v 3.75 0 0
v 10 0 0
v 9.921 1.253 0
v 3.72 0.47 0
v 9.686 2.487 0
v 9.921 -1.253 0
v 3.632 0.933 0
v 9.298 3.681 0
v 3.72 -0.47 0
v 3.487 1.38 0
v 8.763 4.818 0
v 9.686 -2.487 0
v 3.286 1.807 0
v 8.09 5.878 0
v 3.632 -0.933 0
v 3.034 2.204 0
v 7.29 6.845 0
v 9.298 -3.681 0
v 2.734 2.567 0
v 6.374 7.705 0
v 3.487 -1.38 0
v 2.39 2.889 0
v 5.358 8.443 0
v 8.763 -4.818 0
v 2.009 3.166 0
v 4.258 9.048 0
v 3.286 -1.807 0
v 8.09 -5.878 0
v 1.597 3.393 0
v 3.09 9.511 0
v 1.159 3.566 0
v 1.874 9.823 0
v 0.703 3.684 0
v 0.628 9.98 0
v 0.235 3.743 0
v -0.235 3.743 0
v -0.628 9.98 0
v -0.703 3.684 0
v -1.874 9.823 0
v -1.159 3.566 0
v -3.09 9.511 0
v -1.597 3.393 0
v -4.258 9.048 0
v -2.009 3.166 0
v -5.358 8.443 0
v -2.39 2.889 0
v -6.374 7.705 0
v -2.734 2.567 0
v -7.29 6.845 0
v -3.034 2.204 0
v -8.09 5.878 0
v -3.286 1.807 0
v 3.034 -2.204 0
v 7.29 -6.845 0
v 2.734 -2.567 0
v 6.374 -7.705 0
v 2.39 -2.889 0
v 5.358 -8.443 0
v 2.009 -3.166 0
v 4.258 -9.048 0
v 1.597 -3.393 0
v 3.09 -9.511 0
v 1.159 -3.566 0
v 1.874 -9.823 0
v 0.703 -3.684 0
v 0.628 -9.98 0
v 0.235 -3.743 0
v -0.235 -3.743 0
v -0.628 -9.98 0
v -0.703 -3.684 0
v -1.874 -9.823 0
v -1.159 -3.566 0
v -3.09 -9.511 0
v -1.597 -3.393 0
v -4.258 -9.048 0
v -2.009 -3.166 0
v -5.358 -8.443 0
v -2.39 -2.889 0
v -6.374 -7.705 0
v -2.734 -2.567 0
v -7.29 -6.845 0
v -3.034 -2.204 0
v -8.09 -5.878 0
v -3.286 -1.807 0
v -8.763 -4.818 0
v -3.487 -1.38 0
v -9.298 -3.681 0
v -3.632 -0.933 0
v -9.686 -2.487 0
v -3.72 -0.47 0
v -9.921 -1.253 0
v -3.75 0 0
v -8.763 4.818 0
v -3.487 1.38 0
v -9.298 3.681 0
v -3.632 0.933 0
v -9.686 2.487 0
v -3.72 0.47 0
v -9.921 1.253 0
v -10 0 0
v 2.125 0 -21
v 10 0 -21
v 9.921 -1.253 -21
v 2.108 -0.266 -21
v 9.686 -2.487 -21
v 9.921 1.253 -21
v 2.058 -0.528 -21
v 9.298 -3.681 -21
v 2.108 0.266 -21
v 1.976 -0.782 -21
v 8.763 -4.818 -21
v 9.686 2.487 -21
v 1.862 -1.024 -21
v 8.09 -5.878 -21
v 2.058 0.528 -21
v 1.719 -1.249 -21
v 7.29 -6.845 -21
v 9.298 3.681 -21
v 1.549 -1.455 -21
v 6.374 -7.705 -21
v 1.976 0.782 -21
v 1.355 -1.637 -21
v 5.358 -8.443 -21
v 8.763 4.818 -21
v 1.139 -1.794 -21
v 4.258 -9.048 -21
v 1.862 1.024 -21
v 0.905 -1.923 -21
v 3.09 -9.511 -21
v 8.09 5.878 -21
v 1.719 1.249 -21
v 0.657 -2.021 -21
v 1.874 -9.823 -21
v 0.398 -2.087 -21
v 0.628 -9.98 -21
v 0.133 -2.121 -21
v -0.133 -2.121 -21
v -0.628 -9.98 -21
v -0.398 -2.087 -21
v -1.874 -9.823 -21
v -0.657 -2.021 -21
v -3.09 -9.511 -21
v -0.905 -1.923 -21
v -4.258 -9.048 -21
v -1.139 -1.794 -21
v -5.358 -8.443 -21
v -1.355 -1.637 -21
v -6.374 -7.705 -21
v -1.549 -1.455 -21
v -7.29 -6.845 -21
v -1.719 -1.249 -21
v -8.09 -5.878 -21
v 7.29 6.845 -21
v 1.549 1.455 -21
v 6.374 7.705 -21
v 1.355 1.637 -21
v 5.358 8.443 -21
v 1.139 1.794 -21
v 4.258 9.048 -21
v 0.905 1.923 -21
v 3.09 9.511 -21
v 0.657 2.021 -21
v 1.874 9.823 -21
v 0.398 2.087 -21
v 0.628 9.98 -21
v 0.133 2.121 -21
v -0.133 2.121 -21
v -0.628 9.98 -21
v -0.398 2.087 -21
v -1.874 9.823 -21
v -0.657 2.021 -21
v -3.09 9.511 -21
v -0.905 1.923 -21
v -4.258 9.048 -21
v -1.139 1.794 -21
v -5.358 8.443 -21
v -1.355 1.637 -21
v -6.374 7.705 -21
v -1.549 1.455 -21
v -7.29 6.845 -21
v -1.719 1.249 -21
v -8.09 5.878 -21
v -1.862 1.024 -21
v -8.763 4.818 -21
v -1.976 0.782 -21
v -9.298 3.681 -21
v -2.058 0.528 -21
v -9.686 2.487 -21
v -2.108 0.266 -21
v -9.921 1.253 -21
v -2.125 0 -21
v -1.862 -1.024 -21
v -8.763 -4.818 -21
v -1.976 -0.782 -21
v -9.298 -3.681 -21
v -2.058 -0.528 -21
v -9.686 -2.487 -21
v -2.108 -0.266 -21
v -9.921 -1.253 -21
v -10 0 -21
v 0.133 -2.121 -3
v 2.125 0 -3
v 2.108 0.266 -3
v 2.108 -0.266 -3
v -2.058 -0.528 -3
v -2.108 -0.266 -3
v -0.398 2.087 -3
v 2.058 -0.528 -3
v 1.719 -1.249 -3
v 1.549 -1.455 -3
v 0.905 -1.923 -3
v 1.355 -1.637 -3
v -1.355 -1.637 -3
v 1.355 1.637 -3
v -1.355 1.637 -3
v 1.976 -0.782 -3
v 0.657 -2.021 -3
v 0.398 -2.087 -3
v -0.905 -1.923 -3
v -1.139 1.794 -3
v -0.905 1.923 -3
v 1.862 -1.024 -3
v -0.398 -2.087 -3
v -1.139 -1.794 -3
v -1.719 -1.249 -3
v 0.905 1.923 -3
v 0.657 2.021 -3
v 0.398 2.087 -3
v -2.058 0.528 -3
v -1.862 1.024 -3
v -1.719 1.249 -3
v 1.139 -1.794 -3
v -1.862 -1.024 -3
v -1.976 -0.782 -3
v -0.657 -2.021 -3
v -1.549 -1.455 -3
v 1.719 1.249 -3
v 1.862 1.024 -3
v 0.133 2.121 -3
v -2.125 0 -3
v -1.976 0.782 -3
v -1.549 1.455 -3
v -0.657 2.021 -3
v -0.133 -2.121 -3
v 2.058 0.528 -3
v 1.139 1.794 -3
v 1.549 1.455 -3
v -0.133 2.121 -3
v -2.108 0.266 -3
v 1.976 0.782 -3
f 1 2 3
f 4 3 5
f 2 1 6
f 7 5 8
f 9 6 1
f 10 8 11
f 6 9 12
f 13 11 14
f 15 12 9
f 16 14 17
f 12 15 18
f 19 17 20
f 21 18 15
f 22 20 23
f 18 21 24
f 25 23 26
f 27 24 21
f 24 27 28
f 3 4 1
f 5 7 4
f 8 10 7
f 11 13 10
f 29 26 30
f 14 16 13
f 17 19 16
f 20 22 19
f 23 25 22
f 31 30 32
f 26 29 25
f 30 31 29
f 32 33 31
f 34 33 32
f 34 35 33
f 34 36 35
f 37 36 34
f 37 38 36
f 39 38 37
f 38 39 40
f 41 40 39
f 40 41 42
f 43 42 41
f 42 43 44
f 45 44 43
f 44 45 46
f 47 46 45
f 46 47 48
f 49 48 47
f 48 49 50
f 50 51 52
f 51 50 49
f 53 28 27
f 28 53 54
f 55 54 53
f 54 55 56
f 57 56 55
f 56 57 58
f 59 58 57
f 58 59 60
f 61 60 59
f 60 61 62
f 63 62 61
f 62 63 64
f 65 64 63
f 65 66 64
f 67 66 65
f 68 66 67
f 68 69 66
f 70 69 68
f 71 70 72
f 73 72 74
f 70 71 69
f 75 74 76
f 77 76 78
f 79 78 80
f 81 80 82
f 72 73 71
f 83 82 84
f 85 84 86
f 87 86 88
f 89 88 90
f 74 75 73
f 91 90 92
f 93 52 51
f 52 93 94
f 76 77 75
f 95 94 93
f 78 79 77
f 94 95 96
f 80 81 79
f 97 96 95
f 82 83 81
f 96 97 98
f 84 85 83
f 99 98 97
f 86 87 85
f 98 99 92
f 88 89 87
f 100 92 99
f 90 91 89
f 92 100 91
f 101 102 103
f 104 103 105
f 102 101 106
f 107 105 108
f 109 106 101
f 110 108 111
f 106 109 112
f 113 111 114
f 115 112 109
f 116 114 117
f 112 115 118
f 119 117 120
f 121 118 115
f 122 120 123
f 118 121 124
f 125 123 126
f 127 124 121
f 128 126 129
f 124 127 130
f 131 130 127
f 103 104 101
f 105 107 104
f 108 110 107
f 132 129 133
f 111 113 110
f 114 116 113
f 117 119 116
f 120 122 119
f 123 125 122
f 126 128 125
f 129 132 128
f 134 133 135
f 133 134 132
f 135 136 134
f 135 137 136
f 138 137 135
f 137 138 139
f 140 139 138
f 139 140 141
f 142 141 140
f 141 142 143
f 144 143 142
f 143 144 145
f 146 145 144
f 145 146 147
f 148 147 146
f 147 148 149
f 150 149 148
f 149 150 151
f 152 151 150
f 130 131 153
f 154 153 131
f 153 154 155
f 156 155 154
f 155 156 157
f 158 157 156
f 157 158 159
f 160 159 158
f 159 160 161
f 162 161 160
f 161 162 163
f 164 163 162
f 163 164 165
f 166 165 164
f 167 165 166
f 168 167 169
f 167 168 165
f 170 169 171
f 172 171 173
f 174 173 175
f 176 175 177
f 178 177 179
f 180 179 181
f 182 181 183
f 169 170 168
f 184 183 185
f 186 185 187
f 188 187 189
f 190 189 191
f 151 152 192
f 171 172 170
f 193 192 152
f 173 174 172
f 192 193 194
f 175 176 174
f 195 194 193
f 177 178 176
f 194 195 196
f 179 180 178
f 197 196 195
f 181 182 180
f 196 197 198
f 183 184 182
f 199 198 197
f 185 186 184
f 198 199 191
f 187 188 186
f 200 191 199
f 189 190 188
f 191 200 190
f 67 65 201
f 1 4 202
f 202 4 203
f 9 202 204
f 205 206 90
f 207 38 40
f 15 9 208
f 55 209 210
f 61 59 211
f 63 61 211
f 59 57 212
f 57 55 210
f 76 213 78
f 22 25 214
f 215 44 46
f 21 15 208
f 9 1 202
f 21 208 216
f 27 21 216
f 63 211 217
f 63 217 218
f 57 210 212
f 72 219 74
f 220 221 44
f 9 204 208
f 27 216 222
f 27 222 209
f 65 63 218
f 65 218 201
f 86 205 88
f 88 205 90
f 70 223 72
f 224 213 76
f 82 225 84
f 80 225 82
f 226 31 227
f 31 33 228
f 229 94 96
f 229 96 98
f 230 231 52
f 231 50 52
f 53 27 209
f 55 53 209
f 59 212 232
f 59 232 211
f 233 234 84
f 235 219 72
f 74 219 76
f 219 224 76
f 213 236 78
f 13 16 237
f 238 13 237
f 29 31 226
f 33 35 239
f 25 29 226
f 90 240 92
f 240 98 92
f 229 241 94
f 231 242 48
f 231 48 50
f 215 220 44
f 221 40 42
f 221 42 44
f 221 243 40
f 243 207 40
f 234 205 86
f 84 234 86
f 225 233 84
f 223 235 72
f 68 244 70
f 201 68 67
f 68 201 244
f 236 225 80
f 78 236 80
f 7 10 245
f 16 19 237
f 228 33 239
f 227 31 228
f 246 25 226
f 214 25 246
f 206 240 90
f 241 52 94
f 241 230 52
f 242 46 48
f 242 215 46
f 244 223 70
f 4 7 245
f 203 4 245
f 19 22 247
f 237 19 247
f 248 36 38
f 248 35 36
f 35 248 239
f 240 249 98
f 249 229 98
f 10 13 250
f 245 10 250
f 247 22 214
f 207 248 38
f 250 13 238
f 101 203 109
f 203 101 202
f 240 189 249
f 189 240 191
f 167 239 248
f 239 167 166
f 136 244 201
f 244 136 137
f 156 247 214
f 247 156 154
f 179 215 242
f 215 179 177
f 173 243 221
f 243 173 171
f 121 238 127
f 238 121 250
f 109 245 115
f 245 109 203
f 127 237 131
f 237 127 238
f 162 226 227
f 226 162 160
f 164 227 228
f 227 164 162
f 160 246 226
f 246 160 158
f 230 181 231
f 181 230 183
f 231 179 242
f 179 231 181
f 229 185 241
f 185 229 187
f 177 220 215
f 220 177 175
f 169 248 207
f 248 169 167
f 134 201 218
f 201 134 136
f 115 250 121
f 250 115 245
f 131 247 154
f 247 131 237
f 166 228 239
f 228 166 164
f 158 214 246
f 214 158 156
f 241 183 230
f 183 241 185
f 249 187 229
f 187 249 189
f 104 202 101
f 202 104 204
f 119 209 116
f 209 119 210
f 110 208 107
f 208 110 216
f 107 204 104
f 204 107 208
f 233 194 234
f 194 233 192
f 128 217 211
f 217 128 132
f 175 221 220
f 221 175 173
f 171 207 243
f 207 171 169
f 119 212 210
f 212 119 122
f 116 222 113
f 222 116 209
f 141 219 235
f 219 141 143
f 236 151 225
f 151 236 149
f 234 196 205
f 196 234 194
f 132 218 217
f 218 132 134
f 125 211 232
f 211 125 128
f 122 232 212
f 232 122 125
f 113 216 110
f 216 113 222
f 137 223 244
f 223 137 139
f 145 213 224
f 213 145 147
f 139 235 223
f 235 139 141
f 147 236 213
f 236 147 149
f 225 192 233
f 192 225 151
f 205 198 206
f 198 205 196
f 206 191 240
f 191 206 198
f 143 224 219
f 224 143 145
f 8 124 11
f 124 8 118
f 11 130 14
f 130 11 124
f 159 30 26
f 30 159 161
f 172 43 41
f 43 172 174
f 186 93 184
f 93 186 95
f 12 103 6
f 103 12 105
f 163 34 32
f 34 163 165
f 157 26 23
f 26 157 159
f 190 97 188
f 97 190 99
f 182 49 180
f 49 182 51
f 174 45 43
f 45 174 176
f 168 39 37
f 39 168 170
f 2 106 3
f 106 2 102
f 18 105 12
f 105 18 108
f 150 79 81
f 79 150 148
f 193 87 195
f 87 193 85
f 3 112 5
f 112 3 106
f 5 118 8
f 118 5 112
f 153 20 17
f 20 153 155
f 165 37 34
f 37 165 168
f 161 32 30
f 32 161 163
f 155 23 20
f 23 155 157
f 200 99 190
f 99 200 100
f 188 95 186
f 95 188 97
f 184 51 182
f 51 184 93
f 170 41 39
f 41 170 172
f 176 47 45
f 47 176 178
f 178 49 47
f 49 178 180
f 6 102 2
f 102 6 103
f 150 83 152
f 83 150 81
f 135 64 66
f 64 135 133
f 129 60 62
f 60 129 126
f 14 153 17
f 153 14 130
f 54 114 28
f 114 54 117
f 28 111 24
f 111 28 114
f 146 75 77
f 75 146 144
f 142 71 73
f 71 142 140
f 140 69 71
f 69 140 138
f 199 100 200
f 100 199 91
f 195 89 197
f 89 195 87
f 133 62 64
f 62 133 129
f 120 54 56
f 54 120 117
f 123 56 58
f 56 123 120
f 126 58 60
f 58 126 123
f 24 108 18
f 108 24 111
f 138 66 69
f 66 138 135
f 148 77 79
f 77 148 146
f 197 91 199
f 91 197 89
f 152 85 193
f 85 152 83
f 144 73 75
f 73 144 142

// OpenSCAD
$fn = 50;


difference() {
	union() {
		translate(v = [0, 0, -21.0000000000]) {
			cylinder(h = 21, r = 10.0000000000);
		}
		cylinder(h = 0, r = 13.0000000000);
	}
	union() {
		translate(v = [0, 0, 0]) {
			rotate(a = [0, 0, 0]) {
				difference() {
					union() {
						#translate(v = [0, 0, -21.0000000000]) {
							cylinder(h = 21, r = 2.0000000000);
						}
						#translate(v = [0, 0, -3]) {
							cylinder(h = 3, r = 10.0000000000, r1 = 2.1250000000, r2 = 3.7500000000);
						}
						#translate(v = [0, 0, -21.0000000000]) {
							cylinder(h = 21, r = 2.1250000000);
						}
						#translate(v = [0, 0, -21.0000000000]) {
							cylinder(h = 21, r = 2.0000000000);
						}
					}
					union();
				}
			}
		}
	}
}
